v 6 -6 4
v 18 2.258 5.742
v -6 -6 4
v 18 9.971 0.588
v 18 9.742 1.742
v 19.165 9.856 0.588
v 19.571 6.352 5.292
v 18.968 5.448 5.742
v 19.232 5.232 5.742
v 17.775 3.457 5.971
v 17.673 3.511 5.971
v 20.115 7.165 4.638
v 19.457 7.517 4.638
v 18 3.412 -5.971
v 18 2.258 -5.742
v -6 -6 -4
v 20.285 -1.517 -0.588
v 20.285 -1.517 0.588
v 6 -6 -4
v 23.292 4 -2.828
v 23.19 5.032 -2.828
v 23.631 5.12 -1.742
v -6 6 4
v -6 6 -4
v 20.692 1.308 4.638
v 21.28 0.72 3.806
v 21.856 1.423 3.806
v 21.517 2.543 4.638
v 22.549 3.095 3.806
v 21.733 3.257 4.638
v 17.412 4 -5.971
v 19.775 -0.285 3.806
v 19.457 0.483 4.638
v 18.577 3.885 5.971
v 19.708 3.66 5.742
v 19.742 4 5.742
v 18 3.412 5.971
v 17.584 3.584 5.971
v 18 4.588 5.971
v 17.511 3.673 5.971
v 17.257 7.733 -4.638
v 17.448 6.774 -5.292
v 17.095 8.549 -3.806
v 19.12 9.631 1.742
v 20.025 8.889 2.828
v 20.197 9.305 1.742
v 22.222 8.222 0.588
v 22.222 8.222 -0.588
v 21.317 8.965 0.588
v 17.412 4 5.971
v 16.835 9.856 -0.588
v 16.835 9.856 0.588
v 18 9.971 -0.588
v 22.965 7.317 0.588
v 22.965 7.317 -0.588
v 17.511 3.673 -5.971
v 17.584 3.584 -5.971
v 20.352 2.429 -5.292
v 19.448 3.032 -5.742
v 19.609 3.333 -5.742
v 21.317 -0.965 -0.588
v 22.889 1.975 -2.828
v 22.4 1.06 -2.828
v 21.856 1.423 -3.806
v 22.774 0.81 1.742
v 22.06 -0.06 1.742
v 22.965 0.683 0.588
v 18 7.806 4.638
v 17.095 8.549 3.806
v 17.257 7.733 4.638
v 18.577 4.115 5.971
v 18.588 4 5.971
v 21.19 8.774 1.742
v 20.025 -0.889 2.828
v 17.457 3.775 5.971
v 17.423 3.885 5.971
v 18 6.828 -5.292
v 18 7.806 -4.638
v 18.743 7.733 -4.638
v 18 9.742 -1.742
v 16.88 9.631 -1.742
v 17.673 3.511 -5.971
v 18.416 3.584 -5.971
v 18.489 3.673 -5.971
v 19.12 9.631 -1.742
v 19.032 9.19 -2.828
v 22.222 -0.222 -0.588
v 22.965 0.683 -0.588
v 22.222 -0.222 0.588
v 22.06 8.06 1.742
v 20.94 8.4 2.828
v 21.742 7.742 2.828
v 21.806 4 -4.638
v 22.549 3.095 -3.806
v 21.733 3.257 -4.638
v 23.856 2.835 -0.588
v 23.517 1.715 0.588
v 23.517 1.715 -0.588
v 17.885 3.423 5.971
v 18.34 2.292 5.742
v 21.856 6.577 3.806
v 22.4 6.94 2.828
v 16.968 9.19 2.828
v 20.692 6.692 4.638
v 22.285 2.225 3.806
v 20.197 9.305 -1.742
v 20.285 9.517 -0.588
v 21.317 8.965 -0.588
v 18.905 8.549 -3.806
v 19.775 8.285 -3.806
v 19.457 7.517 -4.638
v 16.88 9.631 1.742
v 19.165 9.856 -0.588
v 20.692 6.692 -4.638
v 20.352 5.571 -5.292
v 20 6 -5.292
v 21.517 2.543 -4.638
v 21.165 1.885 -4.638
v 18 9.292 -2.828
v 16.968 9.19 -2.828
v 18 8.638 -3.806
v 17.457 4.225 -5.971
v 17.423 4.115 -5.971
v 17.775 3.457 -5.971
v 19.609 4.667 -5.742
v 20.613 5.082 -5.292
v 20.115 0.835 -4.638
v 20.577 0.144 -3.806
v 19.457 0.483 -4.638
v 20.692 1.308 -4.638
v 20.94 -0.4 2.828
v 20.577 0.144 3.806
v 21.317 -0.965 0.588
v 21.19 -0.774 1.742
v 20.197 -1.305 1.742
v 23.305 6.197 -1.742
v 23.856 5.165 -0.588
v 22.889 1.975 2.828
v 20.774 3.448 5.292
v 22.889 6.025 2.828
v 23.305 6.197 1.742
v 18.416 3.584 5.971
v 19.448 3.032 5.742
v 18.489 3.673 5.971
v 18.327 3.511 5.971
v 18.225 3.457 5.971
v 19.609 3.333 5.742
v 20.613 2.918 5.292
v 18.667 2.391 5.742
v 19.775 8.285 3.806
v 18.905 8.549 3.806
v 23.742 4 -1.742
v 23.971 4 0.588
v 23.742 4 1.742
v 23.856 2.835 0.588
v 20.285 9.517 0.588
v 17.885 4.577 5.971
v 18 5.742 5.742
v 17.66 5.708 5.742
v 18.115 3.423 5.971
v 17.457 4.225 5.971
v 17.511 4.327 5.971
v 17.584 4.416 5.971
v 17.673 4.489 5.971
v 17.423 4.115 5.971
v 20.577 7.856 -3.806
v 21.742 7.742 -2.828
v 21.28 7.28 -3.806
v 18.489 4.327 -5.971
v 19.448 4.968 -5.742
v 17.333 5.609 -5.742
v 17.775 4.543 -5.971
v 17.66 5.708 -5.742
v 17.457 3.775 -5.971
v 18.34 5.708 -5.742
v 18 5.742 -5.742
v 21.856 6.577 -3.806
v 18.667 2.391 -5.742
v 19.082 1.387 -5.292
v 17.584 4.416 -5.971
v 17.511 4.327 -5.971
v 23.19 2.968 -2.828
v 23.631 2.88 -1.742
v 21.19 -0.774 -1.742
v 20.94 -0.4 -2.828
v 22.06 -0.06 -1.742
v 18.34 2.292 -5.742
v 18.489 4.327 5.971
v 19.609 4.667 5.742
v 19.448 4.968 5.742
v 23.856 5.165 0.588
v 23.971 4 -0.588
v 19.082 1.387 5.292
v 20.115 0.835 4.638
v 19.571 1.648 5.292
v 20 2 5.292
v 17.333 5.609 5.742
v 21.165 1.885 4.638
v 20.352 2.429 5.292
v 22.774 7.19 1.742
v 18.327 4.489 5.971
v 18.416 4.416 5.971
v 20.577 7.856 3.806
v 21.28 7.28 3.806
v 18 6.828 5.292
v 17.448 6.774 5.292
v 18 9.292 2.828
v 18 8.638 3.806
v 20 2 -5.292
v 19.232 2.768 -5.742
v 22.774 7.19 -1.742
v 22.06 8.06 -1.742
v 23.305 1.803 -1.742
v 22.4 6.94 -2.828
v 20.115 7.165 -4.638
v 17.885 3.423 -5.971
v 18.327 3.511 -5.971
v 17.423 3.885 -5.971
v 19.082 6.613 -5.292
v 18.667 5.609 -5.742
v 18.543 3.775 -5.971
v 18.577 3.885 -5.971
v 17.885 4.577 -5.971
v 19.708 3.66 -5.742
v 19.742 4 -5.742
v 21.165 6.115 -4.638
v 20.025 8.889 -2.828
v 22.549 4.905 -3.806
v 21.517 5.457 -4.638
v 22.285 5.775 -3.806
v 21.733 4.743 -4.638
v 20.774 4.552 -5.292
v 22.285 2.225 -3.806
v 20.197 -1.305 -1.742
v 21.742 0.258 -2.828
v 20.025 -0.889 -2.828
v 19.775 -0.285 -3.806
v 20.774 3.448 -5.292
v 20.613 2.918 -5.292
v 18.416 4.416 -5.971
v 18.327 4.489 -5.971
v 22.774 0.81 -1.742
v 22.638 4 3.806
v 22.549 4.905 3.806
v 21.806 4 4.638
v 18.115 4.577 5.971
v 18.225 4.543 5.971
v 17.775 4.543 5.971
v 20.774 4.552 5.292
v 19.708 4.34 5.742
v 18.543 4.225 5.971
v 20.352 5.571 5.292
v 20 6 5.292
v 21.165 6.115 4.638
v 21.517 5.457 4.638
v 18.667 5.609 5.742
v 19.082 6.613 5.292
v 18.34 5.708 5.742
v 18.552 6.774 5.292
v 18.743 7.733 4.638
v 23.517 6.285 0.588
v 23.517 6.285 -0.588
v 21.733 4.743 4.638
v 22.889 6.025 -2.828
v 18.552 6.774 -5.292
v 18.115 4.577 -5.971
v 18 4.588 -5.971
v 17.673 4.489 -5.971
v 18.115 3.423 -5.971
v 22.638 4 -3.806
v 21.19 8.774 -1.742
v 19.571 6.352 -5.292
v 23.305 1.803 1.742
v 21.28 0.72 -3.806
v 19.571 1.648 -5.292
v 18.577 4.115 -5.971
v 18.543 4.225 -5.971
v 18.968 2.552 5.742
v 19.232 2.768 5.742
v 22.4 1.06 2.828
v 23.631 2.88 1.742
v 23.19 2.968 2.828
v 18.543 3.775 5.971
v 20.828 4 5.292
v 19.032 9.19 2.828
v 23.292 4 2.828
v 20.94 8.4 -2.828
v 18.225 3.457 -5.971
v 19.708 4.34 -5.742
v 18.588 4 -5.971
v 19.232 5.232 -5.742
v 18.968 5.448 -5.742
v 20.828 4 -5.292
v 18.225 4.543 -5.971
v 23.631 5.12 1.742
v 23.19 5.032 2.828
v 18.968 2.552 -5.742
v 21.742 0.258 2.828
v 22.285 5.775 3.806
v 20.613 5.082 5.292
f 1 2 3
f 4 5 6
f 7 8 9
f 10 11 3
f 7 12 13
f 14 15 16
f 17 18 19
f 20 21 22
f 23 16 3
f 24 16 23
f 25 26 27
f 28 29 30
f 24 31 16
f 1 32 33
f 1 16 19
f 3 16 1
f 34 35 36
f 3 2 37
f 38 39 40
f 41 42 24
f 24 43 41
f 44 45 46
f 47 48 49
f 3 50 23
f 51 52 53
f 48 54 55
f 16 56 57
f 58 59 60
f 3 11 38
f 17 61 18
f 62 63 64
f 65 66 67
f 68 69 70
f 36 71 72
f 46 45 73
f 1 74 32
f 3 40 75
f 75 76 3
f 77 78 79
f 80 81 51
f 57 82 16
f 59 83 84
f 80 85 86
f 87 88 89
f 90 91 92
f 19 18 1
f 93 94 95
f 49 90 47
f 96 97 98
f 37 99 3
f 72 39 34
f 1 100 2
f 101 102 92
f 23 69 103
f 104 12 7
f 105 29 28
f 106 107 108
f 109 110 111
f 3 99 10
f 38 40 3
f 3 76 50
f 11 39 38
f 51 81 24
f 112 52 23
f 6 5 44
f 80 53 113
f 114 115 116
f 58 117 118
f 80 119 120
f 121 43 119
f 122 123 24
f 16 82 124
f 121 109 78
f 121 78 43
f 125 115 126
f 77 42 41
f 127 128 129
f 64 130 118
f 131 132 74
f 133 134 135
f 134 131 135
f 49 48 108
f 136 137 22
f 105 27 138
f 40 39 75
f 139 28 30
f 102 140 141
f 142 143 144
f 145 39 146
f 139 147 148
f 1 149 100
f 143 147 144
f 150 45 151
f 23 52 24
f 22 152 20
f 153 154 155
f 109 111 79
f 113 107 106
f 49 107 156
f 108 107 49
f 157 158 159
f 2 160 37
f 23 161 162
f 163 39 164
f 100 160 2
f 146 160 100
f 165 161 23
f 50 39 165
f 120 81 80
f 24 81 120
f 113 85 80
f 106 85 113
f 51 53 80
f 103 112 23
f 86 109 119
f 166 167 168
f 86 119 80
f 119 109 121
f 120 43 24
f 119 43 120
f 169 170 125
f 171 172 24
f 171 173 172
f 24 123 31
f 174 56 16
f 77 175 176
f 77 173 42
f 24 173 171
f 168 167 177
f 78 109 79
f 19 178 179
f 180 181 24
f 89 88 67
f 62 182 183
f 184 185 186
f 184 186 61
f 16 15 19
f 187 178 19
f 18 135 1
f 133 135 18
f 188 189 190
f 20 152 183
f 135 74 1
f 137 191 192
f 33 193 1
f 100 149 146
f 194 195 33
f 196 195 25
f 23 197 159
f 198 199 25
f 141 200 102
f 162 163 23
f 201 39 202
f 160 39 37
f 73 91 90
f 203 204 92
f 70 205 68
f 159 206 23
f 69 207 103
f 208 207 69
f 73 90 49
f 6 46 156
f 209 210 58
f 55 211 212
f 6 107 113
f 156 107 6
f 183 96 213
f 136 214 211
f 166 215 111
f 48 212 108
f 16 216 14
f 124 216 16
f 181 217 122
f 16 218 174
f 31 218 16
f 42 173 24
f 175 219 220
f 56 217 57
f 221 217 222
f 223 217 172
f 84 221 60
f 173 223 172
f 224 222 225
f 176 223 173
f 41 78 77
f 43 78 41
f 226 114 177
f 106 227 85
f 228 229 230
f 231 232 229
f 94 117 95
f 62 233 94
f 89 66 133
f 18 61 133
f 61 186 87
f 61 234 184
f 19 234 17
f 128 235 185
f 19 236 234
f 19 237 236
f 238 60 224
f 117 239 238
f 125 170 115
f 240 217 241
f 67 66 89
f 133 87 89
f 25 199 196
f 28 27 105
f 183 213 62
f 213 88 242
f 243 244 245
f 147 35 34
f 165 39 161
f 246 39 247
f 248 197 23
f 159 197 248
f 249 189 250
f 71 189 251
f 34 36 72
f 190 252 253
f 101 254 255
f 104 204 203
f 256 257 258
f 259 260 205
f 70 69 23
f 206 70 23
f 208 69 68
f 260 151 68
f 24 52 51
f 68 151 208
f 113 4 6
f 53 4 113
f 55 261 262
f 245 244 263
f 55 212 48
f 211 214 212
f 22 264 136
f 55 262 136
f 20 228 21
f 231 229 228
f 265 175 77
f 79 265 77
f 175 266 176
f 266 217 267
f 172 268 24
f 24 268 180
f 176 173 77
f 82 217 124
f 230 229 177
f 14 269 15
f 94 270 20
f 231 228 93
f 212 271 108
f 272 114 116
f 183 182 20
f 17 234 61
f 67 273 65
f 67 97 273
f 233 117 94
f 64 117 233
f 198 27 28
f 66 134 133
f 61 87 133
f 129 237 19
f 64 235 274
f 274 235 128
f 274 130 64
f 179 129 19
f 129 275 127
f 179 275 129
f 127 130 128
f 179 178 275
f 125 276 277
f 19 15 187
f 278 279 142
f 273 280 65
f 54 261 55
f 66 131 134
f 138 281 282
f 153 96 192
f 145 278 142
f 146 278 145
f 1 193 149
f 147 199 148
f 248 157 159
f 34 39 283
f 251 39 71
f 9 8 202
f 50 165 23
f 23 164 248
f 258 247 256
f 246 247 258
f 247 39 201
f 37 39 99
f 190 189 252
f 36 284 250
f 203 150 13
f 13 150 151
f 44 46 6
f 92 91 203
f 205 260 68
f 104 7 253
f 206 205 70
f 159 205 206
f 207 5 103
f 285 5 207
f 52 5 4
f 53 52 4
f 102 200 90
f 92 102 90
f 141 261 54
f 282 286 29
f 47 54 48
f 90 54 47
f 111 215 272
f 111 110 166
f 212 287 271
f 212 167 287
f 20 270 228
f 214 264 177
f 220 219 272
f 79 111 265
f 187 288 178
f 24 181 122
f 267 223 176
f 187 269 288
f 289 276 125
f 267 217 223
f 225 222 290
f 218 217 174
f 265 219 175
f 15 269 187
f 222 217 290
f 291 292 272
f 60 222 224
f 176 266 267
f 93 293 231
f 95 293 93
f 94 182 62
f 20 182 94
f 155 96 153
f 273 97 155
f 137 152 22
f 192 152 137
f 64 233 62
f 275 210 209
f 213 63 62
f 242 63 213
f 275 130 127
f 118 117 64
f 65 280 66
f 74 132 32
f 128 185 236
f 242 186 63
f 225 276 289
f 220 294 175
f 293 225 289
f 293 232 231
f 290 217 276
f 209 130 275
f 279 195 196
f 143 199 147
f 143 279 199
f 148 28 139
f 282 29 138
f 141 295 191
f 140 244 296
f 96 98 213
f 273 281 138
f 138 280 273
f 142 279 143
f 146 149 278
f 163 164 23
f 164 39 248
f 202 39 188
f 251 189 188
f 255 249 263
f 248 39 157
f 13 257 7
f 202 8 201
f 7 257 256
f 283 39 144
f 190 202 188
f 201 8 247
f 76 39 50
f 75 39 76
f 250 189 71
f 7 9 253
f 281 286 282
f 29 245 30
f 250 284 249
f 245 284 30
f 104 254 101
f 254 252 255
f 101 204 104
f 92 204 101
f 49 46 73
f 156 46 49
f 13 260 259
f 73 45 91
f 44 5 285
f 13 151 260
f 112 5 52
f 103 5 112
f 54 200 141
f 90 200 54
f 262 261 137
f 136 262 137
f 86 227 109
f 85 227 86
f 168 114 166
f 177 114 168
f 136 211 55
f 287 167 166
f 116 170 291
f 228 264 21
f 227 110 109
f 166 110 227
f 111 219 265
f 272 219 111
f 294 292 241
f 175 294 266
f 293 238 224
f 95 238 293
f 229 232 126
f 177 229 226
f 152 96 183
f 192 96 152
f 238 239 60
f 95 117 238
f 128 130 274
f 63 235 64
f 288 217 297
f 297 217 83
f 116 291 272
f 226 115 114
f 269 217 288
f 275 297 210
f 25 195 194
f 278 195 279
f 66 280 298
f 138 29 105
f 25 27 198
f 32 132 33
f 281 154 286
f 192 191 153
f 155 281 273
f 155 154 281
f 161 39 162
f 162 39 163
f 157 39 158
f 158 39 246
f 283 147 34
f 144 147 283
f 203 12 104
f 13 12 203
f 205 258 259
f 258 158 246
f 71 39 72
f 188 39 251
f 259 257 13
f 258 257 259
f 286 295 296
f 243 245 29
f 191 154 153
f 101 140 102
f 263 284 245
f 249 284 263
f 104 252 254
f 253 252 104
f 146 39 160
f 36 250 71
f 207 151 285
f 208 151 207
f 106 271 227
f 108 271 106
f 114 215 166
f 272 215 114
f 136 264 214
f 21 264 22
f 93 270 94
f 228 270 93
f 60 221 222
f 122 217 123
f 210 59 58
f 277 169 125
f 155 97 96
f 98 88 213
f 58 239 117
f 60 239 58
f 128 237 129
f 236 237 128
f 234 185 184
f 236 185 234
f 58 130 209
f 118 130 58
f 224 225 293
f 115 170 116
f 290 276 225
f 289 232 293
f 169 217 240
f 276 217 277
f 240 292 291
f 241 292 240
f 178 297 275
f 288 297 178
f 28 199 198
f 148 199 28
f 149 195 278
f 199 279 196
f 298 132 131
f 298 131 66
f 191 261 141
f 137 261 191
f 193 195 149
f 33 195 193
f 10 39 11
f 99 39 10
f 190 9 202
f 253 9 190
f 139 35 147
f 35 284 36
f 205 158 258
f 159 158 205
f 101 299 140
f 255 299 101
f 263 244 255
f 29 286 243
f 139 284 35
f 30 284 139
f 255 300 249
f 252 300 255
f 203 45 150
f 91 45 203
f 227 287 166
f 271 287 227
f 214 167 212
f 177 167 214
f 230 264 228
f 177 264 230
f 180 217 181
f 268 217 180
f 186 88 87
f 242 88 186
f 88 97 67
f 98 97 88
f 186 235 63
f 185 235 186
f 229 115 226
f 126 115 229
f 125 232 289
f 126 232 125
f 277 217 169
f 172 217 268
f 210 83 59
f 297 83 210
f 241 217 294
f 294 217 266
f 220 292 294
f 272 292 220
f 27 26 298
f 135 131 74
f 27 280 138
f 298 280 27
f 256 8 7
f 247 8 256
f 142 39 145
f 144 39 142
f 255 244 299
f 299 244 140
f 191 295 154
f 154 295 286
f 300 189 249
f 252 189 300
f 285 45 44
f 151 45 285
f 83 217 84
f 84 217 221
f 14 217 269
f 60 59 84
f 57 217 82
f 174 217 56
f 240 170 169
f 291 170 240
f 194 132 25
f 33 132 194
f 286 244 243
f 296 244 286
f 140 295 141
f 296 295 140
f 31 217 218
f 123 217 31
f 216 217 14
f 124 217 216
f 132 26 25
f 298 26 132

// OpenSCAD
// =============================================================================
// test_hull_cube_sphere.scad
//
// Mixed flat + curved: cube and sphere.
// Pattern from: various OpenFlexure illumination mounts.
// Expected: convex hull bridging flat cube faces and spherical surface.
// =============================================================================

$fn = 32;

hull() {
    cube([12, 12, 8], center = true);
    translate([18, 4, 0]) {
        sphere(r = 6);
    }
}
